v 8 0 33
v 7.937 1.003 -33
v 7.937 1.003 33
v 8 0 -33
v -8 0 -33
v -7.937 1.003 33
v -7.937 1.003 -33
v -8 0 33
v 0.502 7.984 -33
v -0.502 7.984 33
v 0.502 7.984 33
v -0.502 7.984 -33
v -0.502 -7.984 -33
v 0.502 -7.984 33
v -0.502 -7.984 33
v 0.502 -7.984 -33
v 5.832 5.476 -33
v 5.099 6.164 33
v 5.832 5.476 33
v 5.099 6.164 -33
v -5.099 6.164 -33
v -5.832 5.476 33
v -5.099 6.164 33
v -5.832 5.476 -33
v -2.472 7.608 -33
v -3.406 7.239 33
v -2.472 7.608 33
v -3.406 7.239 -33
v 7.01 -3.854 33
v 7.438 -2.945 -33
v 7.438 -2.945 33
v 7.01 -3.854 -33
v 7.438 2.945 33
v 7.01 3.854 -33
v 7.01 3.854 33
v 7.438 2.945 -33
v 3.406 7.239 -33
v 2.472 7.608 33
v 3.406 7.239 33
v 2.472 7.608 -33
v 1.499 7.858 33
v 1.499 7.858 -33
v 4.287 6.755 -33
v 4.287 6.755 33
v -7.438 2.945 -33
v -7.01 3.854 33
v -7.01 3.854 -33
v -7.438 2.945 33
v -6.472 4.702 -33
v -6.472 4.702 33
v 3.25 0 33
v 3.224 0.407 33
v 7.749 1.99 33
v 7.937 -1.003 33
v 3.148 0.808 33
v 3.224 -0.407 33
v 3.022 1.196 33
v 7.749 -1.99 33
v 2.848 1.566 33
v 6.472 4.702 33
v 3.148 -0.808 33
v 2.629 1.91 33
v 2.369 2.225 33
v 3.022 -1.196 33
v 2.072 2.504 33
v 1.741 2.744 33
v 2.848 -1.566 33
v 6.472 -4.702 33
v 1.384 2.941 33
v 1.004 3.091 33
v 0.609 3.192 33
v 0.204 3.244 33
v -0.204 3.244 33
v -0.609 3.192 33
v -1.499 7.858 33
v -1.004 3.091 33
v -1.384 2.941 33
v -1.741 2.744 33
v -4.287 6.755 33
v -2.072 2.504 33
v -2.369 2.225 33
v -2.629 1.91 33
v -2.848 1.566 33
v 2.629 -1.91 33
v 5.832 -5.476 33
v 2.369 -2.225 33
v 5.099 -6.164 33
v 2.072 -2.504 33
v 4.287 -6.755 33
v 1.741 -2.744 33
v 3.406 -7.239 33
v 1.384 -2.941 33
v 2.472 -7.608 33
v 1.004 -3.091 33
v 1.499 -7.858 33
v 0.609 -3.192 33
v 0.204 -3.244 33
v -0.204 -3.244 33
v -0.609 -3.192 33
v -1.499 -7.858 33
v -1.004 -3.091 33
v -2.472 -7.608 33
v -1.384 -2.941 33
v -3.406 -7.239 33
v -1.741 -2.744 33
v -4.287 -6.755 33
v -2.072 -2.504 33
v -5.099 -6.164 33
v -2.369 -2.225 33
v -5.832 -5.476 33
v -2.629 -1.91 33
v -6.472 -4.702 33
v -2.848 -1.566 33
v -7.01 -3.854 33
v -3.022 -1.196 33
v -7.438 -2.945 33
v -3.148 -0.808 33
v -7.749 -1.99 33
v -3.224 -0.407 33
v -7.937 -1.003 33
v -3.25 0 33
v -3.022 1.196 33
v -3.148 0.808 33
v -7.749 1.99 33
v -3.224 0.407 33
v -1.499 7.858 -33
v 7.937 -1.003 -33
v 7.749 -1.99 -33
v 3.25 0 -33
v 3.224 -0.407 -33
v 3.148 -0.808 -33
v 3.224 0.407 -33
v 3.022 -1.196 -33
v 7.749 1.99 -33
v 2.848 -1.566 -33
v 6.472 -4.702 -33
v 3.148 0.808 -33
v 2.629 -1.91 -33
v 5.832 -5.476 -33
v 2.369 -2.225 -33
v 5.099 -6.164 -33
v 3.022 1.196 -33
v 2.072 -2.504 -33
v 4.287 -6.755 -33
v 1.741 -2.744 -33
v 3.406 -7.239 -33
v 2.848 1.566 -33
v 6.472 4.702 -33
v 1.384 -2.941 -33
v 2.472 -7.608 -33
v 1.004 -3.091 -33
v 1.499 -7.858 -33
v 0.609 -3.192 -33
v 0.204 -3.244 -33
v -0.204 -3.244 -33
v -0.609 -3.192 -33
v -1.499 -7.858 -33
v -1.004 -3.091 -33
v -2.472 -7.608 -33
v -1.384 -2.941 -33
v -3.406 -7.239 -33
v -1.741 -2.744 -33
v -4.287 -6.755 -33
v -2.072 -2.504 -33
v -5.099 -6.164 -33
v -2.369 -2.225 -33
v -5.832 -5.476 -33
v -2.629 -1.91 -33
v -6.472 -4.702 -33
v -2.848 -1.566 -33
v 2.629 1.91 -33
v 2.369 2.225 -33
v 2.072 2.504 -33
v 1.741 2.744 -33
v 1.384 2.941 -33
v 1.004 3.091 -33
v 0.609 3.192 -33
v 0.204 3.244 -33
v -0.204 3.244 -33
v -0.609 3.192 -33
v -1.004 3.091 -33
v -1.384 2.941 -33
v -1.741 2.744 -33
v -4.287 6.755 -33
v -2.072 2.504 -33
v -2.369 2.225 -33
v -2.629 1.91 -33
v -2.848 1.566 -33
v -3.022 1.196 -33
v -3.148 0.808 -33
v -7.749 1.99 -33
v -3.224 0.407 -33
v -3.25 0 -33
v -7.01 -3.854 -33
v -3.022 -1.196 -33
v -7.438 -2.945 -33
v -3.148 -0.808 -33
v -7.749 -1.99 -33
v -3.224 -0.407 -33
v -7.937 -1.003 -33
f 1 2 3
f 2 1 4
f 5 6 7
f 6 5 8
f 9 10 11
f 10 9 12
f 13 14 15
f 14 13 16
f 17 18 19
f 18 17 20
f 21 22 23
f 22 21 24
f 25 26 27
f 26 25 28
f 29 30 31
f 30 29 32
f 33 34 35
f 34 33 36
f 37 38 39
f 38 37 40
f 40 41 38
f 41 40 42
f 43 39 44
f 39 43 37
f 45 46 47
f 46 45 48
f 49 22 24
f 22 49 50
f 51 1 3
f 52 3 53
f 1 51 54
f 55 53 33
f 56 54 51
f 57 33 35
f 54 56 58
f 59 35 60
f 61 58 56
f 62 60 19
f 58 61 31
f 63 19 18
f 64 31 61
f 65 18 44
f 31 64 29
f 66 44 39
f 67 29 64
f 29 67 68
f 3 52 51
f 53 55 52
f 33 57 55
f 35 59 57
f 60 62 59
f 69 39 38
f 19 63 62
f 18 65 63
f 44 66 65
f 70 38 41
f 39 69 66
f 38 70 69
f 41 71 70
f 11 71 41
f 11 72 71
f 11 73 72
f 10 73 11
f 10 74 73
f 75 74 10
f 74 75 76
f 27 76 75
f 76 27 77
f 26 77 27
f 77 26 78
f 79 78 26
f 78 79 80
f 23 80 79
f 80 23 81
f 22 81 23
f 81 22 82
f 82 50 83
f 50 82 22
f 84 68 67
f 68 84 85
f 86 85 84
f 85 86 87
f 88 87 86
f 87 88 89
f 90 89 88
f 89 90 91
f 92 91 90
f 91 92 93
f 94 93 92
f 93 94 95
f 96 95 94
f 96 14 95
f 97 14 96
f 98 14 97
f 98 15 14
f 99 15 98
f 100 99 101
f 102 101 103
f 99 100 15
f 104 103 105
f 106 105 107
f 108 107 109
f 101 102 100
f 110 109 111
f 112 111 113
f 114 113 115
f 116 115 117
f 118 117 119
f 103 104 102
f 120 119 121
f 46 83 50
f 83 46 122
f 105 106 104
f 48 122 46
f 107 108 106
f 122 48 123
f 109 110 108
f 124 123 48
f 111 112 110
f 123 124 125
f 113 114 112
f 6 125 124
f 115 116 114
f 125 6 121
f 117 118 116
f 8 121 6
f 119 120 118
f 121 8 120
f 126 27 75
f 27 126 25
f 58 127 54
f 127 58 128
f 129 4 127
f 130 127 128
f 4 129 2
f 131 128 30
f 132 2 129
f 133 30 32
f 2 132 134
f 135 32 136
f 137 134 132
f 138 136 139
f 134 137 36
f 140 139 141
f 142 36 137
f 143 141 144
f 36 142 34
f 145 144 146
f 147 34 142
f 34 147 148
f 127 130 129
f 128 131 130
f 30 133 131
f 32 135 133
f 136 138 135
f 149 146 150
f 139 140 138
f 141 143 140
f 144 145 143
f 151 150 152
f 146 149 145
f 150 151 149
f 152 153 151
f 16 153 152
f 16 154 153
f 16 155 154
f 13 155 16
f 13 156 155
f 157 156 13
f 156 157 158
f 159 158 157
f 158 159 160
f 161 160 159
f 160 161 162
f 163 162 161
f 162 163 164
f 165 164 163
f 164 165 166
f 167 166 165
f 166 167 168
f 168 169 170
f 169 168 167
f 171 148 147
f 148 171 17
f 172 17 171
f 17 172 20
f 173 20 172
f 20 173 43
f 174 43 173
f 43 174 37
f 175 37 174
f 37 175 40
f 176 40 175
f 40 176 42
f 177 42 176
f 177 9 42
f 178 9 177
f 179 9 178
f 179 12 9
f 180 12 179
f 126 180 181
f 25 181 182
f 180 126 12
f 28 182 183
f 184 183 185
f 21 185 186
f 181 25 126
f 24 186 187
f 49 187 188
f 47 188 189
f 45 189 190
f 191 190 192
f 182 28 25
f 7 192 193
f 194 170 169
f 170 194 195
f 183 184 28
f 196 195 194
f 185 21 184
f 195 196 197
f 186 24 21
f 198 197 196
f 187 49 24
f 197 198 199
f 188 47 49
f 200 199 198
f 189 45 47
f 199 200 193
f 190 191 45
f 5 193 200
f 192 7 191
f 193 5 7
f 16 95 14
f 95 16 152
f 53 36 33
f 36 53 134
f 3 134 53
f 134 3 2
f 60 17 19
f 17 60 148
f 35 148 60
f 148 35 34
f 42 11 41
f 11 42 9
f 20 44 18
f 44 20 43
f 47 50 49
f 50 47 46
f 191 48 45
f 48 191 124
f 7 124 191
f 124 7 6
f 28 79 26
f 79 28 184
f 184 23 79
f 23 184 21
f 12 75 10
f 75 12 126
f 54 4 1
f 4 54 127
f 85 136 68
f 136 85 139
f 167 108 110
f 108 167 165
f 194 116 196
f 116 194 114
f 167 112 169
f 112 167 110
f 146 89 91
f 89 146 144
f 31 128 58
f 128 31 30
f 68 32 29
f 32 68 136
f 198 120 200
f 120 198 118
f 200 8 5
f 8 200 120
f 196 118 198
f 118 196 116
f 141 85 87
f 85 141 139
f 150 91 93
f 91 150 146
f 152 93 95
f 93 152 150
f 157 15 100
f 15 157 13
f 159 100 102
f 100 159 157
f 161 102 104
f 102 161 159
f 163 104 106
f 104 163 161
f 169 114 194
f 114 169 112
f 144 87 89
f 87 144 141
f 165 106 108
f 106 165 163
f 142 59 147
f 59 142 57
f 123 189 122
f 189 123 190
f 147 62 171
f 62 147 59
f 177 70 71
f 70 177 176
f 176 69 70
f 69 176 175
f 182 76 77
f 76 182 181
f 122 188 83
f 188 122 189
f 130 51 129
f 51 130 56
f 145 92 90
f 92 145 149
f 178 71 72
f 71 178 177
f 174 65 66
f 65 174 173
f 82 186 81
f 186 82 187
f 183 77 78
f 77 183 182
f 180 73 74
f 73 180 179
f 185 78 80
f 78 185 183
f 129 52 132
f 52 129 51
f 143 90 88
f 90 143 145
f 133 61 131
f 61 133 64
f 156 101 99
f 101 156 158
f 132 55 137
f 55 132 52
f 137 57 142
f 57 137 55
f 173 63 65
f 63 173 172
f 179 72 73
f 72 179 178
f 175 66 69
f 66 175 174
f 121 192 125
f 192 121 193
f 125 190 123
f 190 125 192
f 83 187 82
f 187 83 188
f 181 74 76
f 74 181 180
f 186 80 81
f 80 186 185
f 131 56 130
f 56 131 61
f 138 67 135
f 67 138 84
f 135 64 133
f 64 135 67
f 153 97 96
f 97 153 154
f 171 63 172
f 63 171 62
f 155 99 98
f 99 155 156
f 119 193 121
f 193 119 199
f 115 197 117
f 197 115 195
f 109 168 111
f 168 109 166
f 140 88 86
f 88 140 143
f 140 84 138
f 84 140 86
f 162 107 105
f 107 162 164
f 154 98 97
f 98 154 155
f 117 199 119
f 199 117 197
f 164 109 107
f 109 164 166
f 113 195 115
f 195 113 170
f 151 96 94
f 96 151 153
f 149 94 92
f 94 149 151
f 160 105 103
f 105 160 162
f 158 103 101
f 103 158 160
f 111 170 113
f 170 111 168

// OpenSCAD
$fn = 50;


difference() {
	union() {
		translate(v = [0, 0, -33.0000000000]) {
			cylinder(h = 66, r = 8.0000000000);
		}
	}
	union() {
		translate(v = [0, 0, -100.0000000000]) {
			cylinder(h = 200, r = 3.2500000000);
		}
	}
}
